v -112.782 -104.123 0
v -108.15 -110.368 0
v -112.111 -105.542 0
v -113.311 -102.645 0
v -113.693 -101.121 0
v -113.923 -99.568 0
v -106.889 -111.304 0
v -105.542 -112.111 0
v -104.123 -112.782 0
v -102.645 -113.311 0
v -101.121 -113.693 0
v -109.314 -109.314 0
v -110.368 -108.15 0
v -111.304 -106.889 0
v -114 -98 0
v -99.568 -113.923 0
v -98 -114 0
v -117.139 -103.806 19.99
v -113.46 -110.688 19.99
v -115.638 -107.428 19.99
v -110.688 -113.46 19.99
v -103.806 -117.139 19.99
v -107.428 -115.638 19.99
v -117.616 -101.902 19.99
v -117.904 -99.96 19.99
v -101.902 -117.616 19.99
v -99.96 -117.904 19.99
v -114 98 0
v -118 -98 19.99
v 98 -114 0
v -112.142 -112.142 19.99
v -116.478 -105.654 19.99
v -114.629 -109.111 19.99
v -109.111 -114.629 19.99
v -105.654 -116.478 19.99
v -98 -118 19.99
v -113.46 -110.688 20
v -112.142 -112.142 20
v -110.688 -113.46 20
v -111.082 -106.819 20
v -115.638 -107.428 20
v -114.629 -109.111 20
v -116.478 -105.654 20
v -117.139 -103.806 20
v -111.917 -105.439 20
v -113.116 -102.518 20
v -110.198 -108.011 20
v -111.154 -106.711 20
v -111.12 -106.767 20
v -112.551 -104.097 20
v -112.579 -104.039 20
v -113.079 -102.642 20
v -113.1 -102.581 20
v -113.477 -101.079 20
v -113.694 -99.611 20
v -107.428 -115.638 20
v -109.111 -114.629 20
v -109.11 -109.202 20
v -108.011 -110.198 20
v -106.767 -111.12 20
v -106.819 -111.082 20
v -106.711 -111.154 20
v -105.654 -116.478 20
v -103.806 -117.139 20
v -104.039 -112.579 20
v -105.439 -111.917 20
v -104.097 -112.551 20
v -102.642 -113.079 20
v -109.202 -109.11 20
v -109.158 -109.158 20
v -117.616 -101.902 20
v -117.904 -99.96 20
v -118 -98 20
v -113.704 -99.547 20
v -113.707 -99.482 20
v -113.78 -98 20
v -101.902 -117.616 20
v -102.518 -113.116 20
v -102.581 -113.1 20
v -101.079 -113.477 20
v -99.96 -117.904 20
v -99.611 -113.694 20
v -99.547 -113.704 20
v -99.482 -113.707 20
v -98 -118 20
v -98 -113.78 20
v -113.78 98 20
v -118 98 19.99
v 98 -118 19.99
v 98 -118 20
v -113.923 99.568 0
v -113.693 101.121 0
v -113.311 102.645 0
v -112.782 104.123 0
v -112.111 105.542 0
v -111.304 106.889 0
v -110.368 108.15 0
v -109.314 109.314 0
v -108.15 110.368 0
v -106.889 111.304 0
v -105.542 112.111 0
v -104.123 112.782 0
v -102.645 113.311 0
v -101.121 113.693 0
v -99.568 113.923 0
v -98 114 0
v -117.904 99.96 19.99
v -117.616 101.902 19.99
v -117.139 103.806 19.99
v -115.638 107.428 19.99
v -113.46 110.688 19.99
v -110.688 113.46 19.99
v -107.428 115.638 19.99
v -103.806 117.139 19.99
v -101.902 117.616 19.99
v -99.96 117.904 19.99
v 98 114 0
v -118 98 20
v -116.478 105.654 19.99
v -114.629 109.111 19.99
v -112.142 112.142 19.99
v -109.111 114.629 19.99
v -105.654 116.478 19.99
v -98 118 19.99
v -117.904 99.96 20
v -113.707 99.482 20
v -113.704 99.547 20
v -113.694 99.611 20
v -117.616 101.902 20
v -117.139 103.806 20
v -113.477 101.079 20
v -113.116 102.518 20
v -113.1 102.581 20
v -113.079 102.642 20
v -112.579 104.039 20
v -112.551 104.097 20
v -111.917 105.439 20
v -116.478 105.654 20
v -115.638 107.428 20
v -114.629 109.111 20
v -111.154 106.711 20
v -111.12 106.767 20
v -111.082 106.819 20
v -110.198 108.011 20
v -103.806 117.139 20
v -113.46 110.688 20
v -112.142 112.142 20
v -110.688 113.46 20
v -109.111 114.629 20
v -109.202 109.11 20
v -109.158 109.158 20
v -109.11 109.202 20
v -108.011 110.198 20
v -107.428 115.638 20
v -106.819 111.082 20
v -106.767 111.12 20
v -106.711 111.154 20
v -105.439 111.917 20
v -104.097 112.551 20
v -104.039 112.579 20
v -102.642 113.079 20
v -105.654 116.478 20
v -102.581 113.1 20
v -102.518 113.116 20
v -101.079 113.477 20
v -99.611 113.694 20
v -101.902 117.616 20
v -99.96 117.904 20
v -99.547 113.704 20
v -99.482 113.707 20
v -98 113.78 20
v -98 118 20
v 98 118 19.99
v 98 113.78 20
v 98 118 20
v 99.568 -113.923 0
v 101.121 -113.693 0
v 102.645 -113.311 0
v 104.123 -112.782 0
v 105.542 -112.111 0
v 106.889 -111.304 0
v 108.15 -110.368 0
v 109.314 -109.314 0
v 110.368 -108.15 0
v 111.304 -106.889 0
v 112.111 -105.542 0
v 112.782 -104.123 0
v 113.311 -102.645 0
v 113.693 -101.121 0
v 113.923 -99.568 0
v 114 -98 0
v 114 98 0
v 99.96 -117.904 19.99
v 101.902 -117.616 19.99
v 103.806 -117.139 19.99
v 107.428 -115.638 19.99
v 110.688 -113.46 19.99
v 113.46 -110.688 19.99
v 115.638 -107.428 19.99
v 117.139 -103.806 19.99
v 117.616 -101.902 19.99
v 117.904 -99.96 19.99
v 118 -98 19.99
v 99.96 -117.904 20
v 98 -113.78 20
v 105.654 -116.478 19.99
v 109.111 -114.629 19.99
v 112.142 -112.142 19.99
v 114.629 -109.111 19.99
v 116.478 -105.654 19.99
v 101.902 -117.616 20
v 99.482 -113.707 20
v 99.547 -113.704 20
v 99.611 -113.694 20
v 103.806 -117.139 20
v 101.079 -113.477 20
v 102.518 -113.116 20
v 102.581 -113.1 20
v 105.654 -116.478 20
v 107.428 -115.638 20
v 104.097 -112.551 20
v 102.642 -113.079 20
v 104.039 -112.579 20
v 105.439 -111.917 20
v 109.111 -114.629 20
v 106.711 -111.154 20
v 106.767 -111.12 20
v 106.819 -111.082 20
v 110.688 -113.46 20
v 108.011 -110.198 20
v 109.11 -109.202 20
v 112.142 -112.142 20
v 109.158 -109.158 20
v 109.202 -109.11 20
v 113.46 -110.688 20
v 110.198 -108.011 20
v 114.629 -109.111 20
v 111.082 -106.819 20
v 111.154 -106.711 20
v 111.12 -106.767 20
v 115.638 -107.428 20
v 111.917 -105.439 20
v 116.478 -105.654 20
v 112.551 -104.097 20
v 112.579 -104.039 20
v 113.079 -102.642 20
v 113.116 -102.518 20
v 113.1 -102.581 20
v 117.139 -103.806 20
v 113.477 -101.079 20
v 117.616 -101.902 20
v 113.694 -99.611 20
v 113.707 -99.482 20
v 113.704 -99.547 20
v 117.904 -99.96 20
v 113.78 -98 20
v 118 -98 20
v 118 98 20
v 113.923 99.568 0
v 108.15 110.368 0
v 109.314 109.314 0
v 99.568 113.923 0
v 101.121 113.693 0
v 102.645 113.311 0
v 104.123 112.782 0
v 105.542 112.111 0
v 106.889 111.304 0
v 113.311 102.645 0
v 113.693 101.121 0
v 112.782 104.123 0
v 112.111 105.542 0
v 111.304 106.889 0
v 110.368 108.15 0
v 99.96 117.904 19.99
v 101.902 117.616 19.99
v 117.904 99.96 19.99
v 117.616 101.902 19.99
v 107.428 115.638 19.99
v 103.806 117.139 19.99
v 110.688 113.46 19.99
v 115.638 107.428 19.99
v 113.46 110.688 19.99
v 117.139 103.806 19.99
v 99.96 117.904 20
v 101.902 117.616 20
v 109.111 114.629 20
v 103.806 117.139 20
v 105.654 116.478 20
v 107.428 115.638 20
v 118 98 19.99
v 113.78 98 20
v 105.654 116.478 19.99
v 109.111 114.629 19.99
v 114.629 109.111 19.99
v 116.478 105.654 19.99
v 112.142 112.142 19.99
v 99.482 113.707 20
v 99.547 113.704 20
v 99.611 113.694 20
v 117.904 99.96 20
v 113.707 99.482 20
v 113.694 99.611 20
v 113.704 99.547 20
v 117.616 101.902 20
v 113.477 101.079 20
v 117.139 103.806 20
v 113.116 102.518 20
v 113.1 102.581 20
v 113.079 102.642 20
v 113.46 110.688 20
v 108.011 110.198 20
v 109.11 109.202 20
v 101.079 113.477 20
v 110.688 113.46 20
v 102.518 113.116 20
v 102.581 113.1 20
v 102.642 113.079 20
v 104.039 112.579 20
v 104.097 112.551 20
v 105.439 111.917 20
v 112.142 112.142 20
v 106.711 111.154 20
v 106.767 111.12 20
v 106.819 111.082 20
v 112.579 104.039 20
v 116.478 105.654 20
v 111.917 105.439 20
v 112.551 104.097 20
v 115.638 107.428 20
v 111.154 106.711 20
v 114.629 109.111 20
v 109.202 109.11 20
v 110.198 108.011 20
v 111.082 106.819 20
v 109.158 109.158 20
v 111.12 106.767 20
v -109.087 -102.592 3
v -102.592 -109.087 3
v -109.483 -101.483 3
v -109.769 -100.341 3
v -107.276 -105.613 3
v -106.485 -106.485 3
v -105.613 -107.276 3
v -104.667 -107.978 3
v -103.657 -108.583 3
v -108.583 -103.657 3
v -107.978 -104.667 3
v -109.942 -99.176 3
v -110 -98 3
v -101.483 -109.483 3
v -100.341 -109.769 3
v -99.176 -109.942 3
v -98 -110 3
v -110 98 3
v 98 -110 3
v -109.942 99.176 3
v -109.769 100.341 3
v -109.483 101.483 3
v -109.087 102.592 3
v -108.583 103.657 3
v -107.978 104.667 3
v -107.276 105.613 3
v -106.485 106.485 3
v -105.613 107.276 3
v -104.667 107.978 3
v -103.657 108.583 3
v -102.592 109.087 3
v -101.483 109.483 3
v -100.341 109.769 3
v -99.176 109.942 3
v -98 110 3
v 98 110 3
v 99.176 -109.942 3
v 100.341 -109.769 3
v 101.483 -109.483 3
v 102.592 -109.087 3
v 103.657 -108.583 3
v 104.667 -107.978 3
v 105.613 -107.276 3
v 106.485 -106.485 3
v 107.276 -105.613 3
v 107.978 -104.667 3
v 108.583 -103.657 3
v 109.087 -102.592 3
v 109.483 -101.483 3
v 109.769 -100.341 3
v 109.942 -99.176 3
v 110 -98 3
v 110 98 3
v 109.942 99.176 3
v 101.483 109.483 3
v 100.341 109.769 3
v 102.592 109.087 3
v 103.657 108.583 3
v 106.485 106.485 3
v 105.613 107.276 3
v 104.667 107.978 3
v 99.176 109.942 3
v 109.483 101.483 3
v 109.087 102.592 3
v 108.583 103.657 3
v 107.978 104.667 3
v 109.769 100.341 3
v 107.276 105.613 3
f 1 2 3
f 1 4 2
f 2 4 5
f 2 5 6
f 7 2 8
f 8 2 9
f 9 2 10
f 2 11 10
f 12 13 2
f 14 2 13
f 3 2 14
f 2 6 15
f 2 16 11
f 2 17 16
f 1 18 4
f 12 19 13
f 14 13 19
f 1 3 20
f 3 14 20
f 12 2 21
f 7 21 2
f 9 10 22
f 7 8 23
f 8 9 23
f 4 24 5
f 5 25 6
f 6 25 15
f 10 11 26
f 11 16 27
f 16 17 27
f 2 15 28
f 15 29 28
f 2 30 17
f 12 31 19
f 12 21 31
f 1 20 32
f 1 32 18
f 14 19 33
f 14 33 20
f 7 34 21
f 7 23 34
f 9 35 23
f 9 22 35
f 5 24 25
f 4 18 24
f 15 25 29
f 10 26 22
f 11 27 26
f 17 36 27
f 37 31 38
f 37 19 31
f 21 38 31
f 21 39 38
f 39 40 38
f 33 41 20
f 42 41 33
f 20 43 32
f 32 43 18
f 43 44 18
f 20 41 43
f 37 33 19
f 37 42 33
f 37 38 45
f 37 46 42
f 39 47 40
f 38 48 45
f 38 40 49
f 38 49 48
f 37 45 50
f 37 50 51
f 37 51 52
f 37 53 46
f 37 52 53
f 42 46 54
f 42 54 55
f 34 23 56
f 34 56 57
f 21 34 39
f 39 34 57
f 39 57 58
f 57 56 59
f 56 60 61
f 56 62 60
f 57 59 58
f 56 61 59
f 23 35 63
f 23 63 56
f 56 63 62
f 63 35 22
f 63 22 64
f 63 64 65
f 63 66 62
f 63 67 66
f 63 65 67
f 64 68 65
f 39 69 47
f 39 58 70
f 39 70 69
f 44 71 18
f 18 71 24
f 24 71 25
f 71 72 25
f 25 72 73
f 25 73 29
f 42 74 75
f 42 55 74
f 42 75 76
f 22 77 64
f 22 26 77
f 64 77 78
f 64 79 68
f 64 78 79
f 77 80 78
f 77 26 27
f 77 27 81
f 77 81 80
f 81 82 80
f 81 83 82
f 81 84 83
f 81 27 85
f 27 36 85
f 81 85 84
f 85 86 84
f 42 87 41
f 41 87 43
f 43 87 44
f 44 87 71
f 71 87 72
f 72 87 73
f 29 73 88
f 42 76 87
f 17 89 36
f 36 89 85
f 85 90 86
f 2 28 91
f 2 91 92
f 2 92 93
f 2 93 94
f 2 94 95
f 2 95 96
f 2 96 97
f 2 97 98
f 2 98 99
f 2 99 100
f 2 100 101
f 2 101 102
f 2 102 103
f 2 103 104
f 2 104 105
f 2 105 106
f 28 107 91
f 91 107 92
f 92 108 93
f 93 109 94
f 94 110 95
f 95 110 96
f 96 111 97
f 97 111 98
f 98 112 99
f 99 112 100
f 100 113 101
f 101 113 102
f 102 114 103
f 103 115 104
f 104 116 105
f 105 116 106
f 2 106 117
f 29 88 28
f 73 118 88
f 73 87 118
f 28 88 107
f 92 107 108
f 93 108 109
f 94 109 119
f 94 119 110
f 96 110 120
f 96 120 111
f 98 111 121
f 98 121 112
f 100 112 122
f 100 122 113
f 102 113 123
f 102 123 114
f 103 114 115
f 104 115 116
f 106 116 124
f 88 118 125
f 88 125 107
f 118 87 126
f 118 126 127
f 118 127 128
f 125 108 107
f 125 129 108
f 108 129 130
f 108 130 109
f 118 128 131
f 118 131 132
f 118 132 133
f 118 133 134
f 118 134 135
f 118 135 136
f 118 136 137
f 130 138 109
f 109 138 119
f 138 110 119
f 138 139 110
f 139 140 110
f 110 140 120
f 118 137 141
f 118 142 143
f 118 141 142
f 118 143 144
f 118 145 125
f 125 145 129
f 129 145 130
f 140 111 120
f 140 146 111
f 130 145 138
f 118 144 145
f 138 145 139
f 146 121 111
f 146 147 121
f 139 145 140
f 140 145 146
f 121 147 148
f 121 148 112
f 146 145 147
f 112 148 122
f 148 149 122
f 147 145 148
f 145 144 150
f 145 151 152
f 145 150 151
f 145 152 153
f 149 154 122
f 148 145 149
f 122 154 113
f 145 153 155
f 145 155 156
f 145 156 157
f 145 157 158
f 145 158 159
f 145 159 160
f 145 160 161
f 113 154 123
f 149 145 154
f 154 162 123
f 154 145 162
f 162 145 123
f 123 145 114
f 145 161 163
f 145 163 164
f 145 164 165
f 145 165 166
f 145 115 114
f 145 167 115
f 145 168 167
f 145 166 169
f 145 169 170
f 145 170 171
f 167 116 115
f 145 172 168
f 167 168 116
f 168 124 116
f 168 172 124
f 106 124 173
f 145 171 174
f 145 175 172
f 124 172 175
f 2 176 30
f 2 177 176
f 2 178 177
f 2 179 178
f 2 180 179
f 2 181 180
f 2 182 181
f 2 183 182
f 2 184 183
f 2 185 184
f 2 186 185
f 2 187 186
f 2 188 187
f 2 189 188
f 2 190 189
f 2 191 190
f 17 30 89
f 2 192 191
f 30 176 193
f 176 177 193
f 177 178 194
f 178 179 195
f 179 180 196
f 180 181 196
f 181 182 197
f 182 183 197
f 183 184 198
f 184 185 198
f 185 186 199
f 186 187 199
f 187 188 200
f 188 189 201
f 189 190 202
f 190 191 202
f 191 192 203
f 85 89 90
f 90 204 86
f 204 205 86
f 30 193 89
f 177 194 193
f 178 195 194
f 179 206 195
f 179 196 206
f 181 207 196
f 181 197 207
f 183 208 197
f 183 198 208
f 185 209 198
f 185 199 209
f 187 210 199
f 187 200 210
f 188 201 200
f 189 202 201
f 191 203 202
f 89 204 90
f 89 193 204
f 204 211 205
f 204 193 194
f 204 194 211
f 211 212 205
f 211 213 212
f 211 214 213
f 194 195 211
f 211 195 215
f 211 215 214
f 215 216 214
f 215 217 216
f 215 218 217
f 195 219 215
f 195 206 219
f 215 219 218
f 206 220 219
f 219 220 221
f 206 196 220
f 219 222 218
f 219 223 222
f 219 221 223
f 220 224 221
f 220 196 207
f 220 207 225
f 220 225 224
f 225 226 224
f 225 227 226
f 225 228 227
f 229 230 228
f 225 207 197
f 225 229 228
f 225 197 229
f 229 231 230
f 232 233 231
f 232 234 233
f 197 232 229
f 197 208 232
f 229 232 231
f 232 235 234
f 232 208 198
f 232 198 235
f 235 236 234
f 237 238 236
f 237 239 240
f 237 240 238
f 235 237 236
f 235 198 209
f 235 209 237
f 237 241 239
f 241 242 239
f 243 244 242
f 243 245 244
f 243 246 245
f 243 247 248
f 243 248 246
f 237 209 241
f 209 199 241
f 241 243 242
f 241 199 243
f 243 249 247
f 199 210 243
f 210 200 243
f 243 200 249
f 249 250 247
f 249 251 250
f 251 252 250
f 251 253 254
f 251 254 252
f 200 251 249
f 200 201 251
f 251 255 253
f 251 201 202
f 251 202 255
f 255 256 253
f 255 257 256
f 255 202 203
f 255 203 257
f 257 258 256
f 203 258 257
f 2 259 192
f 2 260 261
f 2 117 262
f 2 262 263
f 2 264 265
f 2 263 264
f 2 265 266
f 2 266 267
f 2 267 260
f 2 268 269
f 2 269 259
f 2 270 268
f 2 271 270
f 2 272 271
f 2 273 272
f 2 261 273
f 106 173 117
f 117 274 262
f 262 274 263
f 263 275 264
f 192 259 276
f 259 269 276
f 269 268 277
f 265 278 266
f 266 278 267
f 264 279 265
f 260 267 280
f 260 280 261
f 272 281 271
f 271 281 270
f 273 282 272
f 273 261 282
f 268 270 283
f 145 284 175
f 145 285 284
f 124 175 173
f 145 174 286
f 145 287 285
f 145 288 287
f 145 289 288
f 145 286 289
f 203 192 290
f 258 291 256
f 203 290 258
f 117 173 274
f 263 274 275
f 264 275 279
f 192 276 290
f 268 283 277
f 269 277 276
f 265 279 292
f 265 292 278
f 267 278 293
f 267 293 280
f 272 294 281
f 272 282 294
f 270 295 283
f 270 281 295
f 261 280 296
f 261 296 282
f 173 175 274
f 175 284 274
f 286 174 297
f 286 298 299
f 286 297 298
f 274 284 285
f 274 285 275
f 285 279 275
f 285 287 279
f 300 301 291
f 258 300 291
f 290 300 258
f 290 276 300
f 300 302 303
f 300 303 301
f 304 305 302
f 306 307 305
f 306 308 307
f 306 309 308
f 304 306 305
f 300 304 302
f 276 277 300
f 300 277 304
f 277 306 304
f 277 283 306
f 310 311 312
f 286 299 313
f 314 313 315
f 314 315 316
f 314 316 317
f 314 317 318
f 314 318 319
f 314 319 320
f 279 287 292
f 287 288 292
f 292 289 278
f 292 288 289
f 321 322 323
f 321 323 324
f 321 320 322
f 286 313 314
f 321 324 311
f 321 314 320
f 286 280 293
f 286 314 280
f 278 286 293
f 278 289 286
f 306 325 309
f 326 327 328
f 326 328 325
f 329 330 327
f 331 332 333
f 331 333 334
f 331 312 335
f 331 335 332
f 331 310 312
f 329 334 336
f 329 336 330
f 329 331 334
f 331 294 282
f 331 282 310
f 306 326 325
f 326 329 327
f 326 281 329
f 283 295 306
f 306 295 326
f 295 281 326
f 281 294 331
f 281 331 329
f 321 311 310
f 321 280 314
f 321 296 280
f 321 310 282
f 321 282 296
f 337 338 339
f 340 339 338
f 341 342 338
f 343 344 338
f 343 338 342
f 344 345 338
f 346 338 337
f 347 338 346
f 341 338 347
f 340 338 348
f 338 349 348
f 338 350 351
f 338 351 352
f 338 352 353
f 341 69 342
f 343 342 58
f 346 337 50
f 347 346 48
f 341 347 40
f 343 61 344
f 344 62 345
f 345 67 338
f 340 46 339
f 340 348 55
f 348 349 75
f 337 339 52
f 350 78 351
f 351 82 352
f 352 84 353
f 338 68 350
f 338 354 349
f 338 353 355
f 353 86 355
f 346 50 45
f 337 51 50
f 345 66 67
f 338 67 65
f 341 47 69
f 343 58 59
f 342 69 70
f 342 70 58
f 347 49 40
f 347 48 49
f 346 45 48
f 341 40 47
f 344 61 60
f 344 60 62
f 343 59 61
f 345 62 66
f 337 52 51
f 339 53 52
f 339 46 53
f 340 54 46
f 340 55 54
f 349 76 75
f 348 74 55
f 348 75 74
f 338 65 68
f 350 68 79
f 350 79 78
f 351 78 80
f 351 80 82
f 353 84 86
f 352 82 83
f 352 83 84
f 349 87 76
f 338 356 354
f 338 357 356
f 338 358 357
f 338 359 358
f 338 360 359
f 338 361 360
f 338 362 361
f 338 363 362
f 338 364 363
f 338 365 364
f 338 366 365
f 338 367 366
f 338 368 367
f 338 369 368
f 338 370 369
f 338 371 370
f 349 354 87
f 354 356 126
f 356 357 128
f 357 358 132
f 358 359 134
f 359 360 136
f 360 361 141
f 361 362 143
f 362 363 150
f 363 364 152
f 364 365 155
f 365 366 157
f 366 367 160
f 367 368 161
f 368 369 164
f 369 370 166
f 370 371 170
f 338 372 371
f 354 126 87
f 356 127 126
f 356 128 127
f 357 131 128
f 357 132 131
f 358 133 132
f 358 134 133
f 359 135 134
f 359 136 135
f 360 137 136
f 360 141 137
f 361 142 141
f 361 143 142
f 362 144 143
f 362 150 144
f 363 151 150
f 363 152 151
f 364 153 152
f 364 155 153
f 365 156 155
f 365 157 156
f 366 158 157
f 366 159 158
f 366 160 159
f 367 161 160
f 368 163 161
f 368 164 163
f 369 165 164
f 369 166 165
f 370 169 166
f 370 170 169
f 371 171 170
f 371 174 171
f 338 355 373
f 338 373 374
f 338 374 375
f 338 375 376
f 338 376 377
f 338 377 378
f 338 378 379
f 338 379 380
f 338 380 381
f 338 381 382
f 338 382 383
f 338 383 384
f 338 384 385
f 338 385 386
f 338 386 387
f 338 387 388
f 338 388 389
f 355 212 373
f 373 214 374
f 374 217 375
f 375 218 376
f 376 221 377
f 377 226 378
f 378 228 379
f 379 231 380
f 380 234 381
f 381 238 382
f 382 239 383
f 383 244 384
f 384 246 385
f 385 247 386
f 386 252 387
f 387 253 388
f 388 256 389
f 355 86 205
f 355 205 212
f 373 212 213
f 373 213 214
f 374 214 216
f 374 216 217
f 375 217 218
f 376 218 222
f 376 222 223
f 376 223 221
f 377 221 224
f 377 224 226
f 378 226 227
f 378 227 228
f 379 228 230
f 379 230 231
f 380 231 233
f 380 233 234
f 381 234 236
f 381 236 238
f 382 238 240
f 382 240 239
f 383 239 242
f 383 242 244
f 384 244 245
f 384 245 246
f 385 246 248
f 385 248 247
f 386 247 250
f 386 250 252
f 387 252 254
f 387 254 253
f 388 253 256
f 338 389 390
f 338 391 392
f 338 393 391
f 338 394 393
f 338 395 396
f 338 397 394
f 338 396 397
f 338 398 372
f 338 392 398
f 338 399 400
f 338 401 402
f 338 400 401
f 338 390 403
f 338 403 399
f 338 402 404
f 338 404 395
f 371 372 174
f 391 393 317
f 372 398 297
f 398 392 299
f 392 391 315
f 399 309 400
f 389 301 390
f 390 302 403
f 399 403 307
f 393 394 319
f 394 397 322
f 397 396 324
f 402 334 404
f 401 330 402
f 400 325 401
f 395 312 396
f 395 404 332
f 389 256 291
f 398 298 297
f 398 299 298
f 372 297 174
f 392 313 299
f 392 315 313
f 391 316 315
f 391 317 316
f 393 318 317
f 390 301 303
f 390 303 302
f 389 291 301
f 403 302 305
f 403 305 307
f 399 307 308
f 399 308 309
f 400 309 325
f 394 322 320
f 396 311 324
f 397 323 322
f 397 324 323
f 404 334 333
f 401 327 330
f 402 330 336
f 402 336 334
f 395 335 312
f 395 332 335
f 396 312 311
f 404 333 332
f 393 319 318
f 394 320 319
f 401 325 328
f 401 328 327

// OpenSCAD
// ============================================================
//  Square plant pot saucer
// ============================================================
//  Outer wall tapered outward (classic bowl shape):
//  the body widens upward by _rim_taper per side.
//  _inner_size is the inner dimension at the bottom.
// ============================================================

// --- Parameters -------------------------------------------
_inner_size          = 220;  // Inner dimension (width = depth) at bottom [mm]
_total_height        = 20;   // Total height [mm]
_base_thickness      = 3;    // Base/floor thickness [mm]
_wall_thickness      = 4;    // Wall thickness [mm]
_rim_taper           = 4;    // Outward taper per side towards top [mm]
_corner_radius       = 12;   // Inner corner radius at bottom [mm]

_drain_holes         = false; // Drain holes on/off
_drain_hole_d        = 8;    // Drain hole diameter [mm]
_drain_hole_grid     = 3;    // Number of holes per axis (e.g. 3 = 3×3 grid)
_drain_hole_spacing  = 25;   // Hole spacing [mm]

$fn = 64;

// --- Computed variables -----------------------------------
// Outer size and radius at bottom
_outer_size_bottom       = _inner_size + 2 * _wall_thickness;
_outer_corner_radius     = _corner_radius + _wall_thickness;

// Outer size and radius at top
_outer_size_top          = _outer_size_bottom + 2 * _rim_taper;
_outer_corner_radius_top = _outer_corner_radius + _rim_taper;

// Inner size and radius at top (follows same taper as outer wall)
_inner_size_top          = _outer_size_top - 2 * _wall_thickness;
_inner_corner_radius_top = max(_outer_corner_radius_top - _wall_thickness, 1);

// Small epsilon to avoid z-fighting in difference()
_eps = 0.01;

// --- Helper: rounded square (2D, centered) ----------------
module rounded_sq(w, r) {
    hull() {
        for (x = [-(w/2 - r), (w/2 - r)])
            for (y = [-(w/2 - r), (w/2 - r)])
                translate([x, y]) circle(r = r);
    }
}

// --- Main body --------------------------------------------
difference() {

    // Outer body: hull between bottom and top layer
    hull() {
        linear_extrude(_eps)
            rounded_sq(_outer_size_bottom, _outer_corner_radius);
        translate([0, 0, _total_height - _eps])
            linear_extrude(_eps)
                rounded_sq(_outer_size_top, _outer_corner_radius_top);
    }

    // Inner cavity: starts at base thickness, extends 1 mm above top
    translate([0, 0, _base_thickness])
        hull() {
            linear_extrude(_eps)
                rounded_sq(_inner_size, _corner_radius);
            translate([0, 0, _total_height - _base_thickness + 1 - _eps])
                linear_extrude(_eps)
                    rounded_sq(_inner_size_top, _inner_corner_radius_top);
        }

    // Drain holes (optional)
    if (_drain_holes) {
        _half = floor(_drain_hole_grid / 2);
        for (ix = [-_half : _half], iy = [-_half : _half]) {
            translate([ix * _drain_hole_spacing, iy * _drain_hole_spacing, -_eps])
                cylinder(d = _drain_hole_d, h = _base_thickness + 2 * _eps);
        }
    }
}
